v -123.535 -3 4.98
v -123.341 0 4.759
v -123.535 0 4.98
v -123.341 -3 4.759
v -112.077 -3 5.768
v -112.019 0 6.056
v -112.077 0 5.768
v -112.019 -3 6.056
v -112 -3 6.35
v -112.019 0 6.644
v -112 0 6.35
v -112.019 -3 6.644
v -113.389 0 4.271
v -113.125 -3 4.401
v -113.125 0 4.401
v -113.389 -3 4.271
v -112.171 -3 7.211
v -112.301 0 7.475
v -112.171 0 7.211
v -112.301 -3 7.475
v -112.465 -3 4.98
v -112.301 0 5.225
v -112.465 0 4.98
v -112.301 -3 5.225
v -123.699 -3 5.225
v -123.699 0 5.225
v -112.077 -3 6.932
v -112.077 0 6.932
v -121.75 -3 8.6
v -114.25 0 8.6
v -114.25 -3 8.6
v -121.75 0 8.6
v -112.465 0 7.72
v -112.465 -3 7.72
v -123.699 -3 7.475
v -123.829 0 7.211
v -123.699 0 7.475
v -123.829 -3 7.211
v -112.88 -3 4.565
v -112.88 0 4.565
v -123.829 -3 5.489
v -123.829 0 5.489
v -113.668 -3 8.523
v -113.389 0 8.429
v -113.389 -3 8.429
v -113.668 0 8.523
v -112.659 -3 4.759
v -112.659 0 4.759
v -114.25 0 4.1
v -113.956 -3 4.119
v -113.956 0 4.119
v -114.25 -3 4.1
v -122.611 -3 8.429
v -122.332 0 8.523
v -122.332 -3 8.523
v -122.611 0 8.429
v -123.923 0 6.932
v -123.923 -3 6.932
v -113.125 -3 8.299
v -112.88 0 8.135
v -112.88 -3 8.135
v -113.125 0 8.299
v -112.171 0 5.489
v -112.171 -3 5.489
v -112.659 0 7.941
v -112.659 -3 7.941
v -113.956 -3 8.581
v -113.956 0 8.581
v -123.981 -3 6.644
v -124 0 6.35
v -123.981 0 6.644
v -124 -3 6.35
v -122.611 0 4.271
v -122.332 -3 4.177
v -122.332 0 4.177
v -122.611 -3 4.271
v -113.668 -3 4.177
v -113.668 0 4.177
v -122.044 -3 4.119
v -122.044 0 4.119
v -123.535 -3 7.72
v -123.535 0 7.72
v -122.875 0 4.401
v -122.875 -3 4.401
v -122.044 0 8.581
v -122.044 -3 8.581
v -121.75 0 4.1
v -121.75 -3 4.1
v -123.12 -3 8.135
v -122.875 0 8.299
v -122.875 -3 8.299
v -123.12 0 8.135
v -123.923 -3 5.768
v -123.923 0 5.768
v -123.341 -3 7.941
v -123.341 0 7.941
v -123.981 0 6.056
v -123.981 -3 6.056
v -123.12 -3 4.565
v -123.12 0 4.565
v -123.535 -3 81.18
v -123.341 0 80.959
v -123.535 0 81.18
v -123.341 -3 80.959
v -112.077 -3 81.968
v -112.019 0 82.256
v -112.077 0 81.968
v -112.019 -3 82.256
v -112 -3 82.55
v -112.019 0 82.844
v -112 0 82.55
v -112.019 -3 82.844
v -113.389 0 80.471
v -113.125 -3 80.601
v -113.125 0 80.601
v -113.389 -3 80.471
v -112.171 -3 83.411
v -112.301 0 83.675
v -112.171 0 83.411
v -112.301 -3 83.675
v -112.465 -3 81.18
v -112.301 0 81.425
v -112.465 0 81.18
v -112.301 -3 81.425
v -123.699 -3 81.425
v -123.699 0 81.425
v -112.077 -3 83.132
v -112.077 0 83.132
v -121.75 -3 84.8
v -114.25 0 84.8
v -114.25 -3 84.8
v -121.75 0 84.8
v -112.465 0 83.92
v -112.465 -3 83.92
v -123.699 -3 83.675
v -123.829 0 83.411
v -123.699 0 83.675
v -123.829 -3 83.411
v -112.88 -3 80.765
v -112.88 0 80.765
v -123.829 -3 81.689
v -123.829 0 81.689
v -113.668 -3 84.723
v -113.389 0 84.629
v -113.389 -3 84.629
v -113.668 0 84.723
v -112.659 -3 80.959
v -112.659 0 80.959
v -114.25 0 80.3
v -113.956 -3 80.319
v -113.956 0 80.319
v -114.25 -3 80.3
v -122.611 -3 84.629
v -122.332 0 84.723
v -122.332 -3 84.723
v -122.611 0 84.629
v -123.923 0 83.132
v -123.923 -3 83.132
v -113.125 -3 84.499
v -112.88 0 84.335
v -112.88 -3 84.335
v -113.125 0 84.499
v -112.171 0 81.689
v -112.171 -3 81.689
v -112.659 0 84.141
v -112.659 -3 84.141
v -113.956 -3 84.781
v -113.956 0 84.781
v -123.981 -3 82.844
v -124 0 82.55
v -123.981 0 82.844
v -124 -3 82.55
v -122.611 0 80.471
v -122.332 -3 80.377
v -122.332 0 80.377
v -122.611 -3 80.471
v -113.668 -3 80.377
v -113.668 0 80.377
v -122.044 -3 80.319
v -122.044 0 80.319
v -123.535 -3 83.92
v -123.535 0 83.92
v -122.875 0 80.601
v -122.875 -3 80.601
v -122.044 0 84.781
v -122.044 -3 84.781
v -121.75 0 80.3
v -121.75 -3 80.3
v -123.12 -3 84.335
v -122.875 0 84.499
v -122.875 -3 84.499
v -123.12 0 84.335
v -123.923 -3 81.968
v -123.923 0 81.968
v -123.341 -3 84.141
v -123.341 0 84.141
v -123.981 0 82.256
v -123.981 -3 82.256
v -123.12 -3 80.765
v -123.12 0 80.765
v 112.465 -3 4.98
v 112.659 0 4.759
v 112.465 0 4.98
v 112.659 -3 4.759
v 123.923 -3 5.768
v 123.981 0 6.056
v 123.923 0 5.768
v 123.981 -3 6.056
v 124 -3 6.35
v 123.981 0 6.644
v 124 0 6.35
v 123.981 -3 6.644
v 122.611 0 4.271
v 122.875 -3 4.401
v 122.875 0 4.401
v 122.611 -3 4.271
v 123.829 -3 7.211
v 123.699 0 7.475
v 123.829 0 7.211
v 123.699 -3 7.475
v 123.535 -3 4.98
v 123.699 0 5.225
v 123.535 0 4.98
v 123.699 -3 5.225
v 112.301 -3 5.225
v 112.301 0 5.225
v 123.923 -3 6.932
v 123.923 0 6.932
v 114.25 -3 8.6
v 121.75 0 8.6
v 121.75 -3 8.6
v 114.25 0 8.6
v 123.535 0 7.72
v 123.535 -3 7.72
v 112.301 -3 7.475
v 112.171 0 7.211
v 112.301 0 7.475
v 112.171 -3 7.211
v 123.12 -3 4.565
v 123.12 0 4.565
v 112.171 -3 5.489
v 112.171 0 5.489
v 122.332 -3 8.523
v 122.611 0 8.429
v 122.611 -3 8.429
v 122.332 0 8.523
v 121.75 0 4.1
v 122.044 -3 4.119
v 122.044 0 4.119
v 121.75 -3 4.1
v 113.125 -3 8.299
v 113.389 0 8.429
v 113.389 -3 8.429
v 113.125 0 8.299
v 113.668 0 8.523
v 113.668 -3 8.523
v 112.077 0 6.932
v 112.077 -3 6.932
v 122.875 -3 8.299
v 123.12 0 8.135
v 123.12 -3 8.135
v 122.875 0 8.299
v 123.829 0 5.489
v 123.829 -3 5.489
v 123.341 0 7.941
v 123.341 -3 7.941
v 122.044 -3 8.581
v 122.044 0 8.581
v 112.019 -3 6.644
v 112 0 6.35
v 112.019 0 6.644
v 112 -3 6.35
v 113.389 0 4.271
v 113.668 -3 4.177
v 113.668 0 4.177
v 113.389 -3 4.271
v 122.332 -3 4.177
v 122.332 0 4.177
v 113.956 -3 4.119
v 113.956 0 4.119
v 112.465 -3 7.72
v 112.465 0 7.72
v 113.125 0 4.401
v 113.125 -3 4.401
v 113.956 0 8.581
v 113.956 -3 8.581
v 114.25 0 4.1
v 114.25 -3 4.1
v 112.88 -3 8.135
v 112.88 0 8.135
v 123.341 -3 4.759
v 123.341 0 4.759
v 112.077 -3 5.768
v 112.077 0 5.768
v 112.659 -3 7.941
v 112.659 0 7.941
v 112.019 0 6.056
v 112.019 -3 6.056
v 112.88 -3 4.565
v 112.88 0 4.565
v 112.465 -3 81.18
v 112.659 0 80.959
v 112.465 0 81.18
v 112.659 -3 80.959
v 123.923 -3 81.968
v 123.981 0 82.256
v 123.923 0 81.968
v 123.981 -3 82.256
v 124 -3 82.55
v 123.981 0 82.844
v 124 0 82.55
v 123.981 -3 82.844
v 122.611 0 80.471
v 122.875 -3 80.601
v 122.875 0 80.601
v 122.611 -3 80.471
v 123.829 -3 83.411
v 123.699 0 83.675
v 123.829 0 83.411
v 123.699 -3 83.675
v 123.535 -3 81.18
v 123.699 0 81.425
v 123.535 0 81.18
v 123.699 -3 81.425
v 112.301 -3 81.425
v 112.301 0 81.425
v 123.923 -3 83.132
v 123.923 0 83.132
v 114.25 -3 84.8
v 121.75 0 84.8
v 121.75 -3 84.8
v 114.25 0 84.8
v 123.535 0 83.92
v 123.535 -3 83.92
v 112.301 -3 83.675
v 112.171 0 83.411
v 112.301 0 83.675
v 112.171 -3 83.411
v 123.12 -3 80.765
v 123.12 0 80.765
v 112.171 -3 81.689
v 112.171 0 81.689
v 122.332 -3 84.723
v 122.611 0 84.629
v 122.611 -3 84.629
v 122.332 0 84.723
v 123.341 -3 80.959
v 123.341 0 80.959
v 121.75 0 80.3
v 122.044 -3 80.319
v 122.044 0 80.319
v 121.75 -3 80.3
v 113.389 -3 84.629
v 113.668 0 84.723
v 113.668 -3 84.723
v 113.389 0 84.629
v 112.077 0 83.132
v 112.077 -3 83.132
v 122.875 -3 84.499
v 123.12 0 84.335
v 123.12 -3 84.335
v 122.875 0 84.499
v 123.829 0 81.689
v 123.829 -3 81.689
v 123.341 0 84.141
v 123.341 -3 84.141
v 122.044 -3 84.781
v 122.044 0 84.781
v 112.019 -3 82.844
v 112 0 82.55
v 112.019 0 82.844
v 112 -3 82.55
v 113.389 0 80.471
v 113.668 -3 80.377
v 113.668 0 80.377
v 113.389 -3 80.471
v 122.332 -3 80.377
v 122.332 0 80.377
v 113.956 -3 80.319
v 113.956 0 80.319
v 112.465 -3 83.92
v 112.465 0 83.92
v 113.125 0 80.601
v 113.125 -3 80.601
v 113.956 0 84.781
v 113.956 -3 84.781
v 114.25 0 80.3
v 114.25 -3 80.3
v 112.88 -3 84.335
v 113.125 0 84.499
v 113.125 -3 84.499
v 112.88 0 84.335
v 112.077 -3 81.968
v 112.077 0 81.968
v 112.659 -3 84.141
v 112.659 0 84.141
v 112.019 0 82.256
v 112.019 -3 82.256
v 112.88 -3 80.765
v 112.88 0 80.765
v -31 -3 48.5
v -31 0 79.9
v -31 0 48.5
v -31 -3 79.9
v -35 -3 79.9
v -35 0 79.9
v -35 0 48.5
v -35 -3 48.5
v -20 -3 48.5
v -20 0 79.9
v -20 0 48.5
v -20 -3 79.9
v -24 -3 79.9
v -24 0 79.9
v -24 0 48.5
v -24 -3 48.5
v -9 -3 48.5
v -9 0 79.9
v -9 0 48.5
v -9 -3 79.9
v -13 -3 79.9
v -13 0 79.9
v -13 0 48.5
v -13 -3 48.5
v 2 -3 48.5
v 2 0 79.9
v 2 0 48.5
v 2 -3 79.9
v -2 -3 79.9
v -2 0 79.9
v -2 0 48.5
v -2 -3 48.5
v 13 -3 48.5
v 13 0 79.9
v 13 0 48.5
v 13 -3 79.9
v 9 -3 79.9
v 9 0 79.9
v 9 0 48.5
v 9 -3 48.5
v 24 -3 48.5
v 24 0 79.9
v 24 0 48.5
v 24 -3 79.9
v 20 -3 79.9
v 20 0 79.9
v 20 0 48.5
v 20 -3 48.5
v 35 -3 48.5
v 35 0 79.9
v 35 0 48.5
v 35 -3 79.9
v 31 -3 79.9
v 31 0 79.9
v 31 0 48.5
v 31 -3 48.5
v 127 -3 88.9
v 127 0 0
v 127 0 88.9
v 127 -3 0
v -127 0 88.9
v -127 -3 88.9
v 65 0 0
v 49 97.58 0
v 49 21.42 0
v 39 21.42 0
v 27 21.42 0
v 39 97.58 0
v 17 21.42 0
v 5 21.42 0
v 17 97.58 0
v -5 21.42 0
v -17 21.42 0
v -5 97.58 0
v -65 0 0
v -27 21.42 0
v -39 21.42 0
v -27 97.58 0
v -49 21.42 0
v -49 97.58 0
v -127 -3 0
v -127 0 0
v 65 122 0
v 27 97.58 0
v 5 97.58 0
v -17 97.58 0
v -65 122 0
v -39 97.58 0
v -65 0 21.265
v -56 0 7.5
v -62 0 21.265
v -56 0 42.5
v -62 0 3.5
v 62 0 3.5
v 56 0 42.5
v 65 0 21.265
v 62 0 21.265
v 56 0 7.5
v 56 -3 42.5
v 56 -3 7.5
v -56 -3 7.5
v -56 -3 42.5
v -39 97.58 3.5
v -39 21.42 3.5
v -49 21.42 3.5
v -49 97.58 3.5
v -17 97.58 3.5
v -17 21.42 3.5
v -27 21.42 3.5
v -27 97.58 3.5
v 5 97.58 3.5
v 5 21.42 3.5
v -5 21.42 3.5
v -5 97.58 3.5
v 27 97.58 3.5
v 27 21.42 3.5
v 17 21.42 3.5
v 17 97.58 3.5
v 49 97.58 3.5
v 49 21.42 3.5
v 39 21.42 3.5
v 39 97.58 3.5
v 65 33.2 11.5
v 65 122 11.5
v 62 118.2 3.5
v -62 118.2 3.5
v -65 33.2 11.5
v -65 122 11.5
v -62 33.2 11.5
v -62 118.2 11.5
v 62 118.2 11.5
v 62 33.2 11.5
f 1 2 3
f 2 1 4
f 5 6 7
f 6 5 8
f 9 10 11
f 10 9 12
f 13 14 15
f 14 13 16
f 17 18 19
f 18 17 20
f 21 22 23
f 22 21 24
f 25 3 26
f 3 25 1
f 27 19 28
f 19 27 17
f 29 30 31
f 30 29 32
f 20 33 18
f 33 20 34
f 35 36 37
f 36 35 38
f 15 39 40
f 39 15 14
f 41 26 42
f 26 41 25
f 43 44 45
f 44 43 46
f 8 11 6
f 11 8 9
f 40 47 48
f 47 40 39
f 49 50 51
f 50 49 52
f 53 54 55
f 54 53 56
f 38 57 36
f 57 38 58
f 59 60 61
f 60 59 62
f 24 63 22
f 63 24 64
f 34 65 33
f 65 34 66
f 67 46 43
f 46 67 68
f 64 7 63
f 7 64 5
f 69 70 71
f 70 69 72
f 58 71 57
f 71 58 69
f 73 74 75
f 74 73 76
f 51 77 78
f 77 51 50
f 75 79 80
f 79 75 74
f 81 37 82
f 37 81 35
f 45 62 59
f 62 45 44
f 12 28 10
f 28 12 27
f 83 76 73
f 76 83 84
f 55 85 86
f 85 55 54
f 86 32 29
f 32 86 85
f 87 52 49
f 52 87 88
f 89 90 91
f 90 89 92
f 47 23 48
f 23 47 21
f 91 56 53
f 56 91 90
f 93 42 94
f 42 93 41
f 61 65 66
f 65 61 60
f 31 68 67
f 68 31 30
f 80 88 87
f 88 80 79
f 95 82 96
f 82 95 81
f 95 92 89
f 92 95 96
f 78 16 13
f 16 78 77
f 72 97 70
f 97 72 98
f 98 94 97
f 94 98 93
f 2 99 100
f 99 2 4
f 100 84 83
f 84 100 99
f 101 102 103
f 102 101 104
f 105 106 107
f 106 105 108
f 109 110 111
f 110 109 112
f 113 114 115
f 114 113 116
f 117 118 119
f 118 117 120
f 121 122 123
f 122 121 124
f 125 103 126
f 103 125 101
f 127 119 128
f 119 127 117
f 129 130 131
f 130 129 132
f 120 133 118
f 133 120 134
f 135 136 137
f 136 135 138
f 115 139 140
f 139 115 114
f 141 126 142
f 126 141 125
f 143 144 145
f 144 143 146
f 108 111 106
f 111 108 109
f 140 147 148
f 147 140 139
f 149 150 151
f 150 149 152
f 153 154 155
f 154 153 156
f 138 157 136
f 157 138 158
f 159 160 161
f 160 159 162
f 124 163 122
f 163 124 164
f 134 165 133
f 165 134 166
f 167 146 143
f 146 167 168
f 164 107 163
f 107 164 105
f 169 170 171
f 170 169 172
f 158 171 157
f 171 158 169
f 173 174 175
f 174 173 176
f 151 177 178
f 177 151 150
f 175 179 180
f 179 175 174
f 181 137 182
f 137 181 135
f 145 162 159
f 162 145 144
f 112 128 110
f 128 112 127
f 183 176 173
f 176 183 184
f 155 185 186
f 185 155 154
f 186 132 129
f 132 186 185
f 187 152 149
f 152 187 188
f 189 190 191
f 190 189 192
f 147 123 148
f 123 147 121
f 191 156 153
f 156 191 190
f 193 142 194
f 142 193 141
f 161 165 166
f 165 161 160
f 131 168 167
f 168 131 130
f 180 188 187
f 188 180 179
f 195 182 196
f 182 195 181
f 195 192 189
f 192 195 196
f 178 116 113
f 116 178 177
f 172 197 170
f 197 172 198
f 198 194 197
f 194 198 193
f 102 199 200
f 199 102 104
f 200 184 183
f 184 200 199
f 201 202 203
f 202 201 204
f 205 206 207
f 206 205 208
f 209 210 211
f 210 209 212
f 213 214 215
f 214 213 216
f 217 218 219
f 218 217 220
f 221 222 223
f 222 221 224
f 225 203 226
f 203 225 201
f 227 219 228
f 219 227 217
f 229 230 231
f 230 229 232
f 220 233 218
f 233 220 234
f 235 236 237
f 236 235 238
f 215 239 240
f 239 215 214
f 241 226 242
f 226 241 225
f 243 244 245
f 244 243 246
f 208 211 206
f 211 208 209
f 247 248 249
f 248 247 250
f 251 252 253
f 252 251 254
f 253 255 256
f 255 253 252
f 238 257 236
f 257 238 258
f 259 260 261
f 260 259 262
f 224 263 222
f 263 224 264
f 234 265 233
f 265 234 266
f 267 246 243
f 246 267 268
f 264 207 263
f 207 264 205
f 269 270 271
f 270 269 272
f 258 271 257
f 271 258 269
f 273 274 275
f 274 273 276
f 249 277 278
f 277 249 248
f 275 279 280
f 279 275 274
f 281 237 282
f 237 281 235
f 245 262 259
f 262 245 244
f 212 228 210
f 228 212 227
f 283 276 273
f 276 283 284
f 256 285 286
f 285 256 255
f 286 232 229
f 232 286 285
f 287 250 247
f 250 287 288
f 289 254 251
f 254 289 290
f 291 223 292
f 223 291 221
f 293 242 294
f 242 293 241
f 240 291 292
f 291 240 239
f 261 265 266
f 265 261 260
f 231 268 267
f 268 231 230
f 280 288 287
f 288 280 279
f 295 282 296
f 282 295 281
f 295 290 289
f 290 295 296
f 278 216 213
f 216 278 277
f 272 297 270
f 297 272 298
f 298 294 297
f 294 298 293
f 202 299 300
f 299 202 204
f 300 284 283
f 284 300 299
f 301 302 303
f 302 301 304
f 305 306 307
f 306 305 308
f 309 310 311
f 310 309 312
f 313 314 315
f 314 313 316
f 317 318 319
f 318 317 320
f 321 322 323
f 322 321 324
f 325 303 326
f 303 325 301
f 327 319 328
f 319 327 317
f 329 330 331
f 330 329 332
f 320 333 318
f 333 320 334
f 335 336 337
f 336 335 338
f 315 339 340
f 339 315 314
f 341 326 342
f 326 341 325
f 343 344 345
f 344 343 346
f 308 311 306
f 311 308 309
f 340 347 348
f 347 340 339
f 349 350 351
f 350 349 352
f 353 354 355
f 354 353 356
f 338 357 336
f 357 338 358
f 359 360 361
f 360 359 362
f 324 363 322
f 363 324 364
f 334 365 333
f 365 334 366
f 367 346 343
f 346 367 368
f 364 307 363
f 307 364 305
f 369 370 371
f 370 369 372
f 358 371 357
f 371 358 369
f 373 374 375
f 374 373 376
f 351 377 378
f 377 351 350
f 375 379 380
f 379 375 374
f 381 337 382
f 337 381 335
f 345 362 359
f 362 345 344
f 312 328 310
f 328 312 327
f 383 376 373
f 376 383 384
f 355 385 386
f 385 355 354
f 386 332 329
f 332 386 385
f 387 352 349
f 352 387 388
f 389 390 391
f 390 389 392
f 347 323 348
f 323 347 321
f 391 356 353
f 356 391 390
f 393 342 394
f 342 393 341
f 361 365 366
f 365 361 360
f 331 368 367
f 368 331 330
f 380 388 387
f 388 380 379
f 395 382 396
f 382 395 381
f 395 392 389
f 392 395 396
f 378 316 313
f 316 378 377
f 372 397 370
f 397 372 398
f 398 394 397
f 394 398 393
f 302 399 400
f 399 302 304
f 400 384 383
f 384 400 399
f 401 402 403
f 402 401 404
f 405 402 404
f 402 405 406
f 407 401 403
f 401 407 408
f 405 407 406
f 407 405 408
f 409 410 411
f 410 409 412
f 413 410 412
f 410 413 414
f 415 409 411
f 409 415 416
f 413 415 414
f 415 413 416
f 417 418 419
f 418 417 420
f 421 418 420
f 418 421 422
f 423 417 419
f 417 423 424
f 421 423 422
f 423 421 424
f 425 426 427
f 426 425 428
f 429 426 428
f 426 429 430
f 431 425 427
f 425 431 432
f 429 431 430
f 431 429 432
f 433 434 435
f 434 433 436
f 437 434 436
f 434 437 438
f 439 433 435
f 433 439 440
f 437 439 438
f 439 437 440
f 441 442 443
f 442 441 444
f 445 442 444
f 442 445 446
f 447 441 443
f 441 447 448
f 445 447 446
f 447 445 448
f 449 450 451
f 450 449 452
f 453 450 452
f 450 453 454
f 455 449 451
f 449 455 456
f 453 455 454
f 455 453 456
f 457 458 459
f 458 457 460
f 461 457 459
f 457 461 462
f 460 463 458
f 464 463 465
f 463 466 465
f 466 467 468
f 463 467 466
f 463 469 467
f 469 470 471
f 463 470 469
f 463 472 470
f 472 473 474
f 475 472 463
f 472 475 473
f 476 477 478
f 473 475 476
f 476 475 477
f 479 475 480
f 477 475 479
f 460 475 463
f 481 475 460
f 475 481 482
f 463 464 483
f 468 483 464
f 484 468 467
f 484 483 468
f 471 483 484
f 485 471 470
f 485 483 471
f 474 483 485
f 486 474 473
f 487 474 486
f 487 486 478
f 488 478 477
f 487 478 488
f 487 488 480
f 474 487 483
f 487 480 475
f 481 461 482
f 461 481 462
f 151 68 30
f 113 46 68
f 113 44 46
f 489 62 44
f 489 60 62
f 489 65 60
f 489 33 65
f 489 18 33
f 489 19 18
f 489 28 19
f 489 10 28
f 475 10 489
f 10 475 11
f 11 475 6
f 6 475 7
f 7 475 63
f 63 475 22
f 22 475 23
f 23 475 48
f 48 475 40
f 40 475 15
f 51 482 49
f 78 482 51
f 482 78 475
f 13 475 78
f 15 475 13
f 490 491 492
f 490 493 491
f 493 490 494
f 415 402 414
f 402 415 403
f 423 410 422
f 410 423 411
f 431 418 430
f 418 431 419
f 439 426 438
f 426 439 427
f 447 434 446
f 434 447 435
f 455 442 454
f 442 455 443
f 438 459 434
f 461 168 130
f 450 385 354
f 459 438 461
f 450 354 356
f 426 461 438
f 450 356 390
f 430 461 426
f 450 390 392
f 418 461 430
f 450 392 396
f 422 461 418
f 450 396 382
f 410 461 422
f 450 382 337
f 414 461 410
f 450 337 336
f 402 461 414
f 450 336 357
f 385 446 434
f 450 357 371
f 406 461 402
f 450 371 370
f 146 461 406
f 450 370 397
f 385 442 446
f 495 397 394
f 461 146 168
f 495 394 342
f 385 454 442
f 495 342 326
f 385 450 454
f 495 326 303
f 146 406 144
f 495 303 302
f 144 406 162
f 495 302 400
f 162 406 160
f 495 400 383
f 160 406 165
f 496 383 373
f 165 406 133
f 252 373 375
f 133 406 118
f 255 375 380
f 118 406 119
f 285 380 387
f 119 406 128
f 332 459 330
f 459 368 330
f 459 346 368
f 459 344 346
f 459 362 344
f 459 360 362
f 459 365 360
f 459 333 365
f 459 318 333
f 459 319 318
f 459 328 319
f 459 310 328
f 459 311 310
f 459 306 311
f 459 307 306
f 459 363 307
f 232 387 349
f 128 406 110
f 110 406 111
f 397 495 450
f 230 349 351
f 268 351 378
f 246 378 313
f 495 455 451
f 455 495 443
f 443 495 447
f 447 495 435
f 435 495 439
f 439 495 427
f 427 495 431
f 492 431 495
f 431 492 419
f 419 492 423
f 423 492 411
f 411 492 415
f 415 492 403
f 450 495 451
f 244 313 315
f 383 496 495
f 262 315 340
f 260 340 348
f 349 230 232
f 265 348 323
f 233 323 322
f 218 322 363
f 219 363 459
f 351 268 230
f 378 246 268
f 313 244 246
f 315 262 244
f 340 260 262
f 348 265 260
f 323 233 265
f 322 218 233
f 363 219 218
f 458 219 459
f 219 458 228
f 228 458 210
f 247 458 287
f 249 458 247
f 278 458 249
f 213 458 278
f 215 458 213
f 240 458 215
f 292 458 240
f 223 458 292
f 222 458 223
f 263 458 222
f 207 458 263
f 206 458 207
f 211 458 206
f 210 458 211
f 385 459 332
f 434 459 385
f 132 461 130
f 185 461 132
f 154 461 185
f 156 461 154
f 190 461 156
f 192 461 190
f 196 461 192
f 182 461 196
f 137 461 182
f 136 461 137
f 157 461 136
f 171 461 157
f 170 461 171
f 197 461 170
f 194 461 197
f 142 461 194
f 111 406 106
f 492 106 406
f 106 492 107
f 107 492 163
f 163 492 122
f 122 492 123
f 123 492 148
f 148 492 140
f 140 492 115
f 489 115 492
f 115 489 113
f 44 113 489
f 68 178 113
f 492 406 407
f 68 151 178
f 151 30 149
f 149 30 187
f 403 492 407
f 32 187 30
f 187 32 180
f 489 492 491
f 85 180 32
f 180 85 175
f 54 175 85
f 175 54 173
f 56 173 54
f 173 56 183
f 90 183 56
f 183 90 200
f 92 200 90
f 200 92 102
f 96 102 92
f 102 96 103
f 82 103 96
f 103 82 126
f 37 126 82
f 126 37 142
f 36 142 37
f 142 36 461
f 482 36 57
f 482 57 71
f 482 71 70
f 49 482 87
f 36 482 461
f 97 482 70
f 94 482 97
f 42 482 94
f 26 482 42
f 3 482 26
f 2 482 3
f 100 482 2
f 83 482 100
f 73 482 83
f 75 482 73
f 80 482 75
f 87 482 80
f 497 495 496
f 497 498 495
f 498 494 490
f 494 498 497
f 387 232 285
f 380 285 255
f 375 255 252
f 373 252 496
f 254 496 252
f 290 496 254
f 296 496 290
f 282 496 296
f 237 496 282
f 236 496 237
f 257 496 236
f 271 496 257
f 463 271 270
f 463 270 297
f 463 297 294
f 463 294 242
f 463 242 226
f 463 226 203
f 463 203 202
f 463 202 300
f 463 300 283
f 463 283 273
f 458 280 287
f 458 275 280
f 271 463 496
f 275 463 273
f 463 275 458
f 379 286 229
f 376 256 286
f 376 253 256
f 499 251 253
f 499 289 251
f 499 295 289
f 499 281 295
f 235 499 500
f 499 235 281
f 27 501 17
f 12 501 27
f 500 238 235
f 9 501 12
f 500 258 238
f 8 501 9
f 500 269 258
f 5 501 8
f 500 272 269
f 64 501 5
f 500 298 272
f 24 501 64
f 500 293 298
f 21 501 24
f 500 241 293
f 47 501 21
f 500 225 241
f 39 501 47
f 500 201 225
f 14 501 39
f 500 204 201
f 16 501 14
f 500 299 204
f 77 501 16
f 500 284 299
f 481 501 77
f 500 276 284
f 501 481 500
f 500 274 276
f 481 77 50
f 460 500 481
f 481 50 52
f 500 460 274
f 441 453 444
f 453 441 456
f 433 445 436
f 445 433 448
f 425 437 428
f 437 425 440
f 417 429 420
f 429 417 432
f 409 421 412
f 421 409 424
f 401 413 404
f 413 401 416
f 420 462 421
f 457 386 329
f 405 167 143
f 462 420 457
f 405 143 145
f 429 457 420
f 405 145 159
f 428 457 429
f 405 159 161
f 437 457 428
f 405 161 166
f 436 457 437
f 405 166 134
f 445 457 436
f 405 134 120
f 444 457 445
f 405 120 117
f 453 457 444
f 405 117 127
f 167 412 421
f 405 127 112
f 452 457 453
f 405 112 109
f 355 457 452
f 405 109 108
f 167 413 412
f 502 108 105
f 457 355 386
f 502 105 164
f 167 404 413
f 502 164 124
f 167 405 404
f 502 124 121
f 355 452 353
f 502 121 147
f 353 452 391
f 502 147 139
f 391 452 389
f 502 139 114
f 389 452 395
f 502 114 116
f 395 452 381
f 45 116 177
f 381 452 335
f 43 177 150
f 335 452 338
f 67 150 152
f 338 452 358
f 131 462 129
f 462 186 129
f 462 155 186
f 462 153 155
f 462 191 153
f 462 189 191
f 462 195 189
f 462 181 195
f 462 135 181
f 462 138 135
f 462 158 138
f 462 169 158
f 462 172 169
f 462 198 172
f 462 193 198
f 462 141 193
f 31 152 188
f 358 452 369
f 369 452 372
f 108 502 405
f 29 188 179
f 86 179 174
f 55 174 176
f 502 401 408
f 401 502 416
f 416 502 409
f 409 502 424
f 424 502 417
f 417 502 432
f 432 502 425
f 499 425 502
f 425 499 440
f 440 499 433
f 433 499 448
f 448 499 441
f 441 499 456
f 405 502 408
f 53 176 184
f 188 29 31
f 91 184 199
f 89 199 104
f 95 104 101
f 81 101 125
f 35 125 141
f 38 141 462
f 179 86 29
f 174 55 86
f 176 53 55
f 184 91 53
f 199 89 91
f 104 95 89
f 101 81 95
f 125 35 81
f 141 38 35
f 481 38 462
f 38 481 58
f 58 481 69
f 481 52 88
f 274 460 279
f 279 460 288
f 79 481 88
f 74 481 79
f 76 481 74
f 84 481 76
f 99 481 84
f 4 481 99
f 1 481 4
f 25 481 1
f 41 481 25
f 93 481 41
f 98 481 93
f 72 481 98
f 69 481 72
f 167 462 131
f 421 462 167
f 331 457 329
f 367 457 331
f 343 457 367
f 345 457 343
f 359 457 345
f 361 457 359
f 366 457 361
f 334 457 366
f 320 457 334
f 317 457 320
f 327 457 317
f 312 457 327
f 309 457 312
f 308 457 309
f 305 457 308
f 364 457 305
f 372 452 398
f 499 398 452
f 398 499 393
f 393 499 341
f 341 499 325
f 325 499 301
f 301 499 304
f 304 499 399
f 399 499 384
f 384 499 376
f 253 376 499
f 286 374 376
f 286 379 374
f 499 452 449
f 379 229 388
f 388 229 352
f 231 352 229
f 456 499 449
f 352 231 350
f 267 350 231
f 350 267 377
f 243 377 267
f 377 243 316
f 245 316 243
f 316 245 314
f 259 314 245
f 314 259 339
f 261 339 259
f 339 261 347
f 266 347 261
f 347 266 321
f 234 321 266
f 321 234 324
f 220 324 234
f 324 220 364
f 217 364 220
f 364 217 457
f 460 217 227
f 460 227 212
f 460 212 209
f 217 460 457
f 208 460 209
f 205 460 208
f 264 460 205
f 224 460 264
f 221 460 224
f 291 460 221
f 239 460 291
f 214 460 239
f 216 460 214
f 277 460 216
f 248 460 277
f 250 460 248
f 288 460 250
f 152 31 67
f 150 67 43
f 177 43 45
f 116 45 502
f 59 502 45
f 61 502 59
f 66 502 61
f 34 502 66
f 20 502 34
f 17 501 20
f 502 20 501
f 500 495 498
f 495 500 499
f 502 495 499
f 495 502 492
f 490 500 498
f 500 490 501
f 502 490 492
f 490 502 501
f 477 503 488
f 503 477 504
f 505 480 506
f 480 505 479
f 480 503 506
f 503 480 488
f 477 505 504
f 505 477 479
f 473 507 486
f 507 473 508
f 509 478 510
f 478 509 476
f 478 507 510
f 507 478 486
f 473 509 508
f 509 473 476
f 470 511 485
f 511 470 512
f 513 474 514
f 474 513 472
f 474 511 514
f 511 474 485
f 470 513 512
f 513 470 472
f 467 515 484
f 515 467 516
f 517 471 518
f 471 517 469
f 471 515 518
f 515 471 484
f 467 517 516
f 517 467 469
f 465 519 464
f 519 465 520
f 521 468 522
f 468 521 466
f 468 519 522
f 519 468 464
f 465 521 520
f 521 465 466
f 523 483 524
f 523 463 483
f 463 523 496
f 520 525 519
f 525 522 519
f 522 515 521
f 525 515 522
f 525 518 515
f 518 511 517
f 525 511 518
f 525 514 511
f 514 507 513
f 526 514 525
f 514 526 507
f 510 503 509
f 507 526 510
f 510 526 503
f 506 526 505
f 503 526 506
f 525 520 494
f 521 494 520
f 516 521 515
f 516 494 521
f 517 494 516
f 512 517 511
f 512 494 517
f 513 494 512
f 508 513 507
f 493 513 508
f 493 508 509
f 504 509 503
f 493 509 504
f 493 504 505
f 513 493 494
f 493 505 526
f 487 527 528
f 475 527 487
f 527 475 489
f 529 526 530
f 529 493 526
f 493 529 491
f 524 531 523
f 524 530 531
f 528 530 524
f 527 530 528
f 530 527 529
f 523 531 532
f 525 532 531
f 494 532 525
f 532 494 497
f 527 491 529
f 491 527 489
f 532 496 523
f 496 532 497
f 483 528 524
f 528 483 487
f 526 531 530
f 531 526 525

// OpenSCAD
// =============================================================================
//  10" Rack mount cradle for an AMD Ryzen 7 mini PC
//  Target rack : DeskPi RackMate (10-inch / "mini rack"), 2U faceplate
//  Orientation : PC sits flat, top sticker up, POWER-BUTTON face to the front,
//                rear port cluster to the back, both VENTED SIDE faces fully
//                open to the left / right of the rack for airflow.
//
//  Units are millimetres. Designed to be FDM printed flat on the faceplate.
//  Render the cradle:   openscad -o mount.stl minipc_10in_rack_mount.scad
//  Preview with PC:     openscad -D show_pc=true ...
// =============================================================================

// ---- Mini PC outer size (measured) -----------------------------------------
pc_w = 120;   // X : across the rack  (the two VENTED faces point left / right)
pc_d = 115;   // Y : into the rack    (front = power button, rear = ports)
pc_h = 43;    // Z : vertical         (top sticker up, rubber feet down)

clr  = 2.0;   // clearance added around the PC on each side so it drops in

// ---- 10" rack interface  ----  *** VERIFY THESE AGAINST YOUR RACK ***  ------
// DeskPi RackMate / generic 10-inch values. The mounting holes are SLOTS, so a
// few mm of error in hole_dx is tolerated, but check with a caliper if unsure.
u_mm     = 44.45;   // 1U
units    = 2;       // faceplate height in U (PC is 43mm tall -> needs 2U)
panel_w  = 254;     // 10-inch faceplate width
hole_dx  = 236;     // center-to-center between the LEFT and RIGHT rail holes
edge_z   = 6.35;    // rail hole inset from top/bottom of panel (EIA 0.25")
screw_d  = 4.5;     // M4 clearance hole  (use 6.5 for M6 racks)
slot_len = 12;      // horizontal slot length -> +/-(slot_len-screw_d)/2 play

// ---- Structure --------------------------------------------------------------
face_t    = 3.0;    // faceplate thickness
base      = 3.5;    // bottom tray thickness
wall      = 3.0;    // curb / rear-lip / gusset thickness
curb_h    = 8.0;    // height of side locating curbs (LOW so vents stay open)
front_lip = 4.0;    // faceplate overlap onto the PC front bezel (retains PC)
back_gap  = 2.0;    // gap behind PC before the rear lip
vent_face = true;   // add cooling slots in the faceplate above the PC window
ov        = 0.8;    // interference overlap so all parts fuse into one solid

show_pc = false;    // true = draw a ghost PC for previews (NOT part of STL)
$fn = 48;

// ---- Derived ----------------------------------------------------------------
panel_h  = units * u_mm;            // 88.9 for 2U
cav_w    = pc_w + 2*clr;            // inner cavity width
tray_d   = pc_d + clr + back_gap;   // tray length front->rear lip
pc_z0    = base;                    // PC rests on the tray
win_w    = pc_w - 2*front_lip;      // front window opening
win_h    = pc_h - 2*front_lip;
win_zc   = pc_z0 + pc_h/2;          // window vertical center

// =============================================================================
//  Helpers
// =============================================================================

// Horizontal slot lying in the X-Z plane, bored through +Y for `depth`.
module xslot(len, d, depth) {
    hull() for (s = [-1, 1])
        translate([s*(len - d)/2, 0, 0])
            rotate([-90, 0, 0]) cylinder(d = d, h = depth);
}

// =============================================================================
//  Parts
// =============================================================================

module faceplate() {
    difference() {
        translate([-panel_w/2, -face_t, 0]) cube([panel_w, face_t, panel_h]);

        // Front port / power-button window
        translate([-win_w/2, -face_t - 1, win_zc - win_h/2])
            cube([win_w, face_t + 2, win_h]);

        // Four rail mounting slots (top + bottom hole of the 2U panel)
        for (sx = [-1, 1], sz = [edge_z, panel_h - edge_z])
            translate([sx*hole_dx/2, -face_t - 1, sz])
                xslot(slot_len, screw_d, face_t + 2);

        // Optional cooling slots above the window
        if (vent_face) {
            vz0 = win_zc + win_h/2 + 6;     // start above the window
            vz1 = panel_h - 9;
            if (vz1 - vz0 > 12)
                for (gx = [-3:1:3])
                    translate([gx*11 - 2, -face_t - 1, vz0])
                        cube([4, face_t + 2, vz1 - vz0]);
        }
    }
}

module cradle() {
    out_w = cav_w + 2*wall;   // full outer width (tray runs under the curbs)

    // Full-width bottom tray (overlaps the faceplate) with a few floor vents
    difference() {
        translate([-out_w/2, -ov, 0]) cube([out_w, tray_d + ov, base]);
        for (gx = [-2:1:2])
            translate([gx*22 - 5, tray_d*0.18, -1])
                cube([10, tray_d*0.64, base + 2]);
    }

    // Low side locating curbs (only the bottom few mm of the vented faces).
    // They sit on the tray (overlap in Z) and bite into the faceplate (-ov).
    for (s = [-1, 1])
        translate([s == 1 ? cav_w/2 : -(cav_w/2 + wall), -ov, 0])
            cube([wall, tray_d + ov, base + curb_h]);

    // Rear lip / back stop (kept low so the rear ports stay clear)
    translate([-out_w/2, tray_d - ov, 0])
        cube([out_w, wall + ov, base + curb_h]);

    // Side gussets bracing the cradle to the faceplate (stiffens the cantilever).
    // Overlap into the curb top (gz0) and into the faceplate (-ov) so they fuse.
    g_len = 40;                    // short: only braces the tray near the front
    g_top = base + curb_h + 10;    // low so the side vents stay open
    gz0   = base + curb_h - 2;
    for (s = [-1, 1])
        translate([s == 1 ? cav_w/2 : -(cav_w/2 + wall), 0, 0])
            rotate([90, 0, 90])
                linear_extrude(wall)
                    polygon([[-ov, gz0],
                             [-ov, g_top],
                             [g_len, gz0]]);
}

module ghost_pc() {
    color([0.25, 0.4, 0.55, 0.45])
        translate([-pc_w/2, 0, pc_z0]) cube([pc_w, pc_d, pc_h]);
}

module assembly() {
    color([0.85, 0.85, 0.88]) {
        faceplate();
        cradle();
    }
    if (show_pc) ghost_pc();
}

assembly();
